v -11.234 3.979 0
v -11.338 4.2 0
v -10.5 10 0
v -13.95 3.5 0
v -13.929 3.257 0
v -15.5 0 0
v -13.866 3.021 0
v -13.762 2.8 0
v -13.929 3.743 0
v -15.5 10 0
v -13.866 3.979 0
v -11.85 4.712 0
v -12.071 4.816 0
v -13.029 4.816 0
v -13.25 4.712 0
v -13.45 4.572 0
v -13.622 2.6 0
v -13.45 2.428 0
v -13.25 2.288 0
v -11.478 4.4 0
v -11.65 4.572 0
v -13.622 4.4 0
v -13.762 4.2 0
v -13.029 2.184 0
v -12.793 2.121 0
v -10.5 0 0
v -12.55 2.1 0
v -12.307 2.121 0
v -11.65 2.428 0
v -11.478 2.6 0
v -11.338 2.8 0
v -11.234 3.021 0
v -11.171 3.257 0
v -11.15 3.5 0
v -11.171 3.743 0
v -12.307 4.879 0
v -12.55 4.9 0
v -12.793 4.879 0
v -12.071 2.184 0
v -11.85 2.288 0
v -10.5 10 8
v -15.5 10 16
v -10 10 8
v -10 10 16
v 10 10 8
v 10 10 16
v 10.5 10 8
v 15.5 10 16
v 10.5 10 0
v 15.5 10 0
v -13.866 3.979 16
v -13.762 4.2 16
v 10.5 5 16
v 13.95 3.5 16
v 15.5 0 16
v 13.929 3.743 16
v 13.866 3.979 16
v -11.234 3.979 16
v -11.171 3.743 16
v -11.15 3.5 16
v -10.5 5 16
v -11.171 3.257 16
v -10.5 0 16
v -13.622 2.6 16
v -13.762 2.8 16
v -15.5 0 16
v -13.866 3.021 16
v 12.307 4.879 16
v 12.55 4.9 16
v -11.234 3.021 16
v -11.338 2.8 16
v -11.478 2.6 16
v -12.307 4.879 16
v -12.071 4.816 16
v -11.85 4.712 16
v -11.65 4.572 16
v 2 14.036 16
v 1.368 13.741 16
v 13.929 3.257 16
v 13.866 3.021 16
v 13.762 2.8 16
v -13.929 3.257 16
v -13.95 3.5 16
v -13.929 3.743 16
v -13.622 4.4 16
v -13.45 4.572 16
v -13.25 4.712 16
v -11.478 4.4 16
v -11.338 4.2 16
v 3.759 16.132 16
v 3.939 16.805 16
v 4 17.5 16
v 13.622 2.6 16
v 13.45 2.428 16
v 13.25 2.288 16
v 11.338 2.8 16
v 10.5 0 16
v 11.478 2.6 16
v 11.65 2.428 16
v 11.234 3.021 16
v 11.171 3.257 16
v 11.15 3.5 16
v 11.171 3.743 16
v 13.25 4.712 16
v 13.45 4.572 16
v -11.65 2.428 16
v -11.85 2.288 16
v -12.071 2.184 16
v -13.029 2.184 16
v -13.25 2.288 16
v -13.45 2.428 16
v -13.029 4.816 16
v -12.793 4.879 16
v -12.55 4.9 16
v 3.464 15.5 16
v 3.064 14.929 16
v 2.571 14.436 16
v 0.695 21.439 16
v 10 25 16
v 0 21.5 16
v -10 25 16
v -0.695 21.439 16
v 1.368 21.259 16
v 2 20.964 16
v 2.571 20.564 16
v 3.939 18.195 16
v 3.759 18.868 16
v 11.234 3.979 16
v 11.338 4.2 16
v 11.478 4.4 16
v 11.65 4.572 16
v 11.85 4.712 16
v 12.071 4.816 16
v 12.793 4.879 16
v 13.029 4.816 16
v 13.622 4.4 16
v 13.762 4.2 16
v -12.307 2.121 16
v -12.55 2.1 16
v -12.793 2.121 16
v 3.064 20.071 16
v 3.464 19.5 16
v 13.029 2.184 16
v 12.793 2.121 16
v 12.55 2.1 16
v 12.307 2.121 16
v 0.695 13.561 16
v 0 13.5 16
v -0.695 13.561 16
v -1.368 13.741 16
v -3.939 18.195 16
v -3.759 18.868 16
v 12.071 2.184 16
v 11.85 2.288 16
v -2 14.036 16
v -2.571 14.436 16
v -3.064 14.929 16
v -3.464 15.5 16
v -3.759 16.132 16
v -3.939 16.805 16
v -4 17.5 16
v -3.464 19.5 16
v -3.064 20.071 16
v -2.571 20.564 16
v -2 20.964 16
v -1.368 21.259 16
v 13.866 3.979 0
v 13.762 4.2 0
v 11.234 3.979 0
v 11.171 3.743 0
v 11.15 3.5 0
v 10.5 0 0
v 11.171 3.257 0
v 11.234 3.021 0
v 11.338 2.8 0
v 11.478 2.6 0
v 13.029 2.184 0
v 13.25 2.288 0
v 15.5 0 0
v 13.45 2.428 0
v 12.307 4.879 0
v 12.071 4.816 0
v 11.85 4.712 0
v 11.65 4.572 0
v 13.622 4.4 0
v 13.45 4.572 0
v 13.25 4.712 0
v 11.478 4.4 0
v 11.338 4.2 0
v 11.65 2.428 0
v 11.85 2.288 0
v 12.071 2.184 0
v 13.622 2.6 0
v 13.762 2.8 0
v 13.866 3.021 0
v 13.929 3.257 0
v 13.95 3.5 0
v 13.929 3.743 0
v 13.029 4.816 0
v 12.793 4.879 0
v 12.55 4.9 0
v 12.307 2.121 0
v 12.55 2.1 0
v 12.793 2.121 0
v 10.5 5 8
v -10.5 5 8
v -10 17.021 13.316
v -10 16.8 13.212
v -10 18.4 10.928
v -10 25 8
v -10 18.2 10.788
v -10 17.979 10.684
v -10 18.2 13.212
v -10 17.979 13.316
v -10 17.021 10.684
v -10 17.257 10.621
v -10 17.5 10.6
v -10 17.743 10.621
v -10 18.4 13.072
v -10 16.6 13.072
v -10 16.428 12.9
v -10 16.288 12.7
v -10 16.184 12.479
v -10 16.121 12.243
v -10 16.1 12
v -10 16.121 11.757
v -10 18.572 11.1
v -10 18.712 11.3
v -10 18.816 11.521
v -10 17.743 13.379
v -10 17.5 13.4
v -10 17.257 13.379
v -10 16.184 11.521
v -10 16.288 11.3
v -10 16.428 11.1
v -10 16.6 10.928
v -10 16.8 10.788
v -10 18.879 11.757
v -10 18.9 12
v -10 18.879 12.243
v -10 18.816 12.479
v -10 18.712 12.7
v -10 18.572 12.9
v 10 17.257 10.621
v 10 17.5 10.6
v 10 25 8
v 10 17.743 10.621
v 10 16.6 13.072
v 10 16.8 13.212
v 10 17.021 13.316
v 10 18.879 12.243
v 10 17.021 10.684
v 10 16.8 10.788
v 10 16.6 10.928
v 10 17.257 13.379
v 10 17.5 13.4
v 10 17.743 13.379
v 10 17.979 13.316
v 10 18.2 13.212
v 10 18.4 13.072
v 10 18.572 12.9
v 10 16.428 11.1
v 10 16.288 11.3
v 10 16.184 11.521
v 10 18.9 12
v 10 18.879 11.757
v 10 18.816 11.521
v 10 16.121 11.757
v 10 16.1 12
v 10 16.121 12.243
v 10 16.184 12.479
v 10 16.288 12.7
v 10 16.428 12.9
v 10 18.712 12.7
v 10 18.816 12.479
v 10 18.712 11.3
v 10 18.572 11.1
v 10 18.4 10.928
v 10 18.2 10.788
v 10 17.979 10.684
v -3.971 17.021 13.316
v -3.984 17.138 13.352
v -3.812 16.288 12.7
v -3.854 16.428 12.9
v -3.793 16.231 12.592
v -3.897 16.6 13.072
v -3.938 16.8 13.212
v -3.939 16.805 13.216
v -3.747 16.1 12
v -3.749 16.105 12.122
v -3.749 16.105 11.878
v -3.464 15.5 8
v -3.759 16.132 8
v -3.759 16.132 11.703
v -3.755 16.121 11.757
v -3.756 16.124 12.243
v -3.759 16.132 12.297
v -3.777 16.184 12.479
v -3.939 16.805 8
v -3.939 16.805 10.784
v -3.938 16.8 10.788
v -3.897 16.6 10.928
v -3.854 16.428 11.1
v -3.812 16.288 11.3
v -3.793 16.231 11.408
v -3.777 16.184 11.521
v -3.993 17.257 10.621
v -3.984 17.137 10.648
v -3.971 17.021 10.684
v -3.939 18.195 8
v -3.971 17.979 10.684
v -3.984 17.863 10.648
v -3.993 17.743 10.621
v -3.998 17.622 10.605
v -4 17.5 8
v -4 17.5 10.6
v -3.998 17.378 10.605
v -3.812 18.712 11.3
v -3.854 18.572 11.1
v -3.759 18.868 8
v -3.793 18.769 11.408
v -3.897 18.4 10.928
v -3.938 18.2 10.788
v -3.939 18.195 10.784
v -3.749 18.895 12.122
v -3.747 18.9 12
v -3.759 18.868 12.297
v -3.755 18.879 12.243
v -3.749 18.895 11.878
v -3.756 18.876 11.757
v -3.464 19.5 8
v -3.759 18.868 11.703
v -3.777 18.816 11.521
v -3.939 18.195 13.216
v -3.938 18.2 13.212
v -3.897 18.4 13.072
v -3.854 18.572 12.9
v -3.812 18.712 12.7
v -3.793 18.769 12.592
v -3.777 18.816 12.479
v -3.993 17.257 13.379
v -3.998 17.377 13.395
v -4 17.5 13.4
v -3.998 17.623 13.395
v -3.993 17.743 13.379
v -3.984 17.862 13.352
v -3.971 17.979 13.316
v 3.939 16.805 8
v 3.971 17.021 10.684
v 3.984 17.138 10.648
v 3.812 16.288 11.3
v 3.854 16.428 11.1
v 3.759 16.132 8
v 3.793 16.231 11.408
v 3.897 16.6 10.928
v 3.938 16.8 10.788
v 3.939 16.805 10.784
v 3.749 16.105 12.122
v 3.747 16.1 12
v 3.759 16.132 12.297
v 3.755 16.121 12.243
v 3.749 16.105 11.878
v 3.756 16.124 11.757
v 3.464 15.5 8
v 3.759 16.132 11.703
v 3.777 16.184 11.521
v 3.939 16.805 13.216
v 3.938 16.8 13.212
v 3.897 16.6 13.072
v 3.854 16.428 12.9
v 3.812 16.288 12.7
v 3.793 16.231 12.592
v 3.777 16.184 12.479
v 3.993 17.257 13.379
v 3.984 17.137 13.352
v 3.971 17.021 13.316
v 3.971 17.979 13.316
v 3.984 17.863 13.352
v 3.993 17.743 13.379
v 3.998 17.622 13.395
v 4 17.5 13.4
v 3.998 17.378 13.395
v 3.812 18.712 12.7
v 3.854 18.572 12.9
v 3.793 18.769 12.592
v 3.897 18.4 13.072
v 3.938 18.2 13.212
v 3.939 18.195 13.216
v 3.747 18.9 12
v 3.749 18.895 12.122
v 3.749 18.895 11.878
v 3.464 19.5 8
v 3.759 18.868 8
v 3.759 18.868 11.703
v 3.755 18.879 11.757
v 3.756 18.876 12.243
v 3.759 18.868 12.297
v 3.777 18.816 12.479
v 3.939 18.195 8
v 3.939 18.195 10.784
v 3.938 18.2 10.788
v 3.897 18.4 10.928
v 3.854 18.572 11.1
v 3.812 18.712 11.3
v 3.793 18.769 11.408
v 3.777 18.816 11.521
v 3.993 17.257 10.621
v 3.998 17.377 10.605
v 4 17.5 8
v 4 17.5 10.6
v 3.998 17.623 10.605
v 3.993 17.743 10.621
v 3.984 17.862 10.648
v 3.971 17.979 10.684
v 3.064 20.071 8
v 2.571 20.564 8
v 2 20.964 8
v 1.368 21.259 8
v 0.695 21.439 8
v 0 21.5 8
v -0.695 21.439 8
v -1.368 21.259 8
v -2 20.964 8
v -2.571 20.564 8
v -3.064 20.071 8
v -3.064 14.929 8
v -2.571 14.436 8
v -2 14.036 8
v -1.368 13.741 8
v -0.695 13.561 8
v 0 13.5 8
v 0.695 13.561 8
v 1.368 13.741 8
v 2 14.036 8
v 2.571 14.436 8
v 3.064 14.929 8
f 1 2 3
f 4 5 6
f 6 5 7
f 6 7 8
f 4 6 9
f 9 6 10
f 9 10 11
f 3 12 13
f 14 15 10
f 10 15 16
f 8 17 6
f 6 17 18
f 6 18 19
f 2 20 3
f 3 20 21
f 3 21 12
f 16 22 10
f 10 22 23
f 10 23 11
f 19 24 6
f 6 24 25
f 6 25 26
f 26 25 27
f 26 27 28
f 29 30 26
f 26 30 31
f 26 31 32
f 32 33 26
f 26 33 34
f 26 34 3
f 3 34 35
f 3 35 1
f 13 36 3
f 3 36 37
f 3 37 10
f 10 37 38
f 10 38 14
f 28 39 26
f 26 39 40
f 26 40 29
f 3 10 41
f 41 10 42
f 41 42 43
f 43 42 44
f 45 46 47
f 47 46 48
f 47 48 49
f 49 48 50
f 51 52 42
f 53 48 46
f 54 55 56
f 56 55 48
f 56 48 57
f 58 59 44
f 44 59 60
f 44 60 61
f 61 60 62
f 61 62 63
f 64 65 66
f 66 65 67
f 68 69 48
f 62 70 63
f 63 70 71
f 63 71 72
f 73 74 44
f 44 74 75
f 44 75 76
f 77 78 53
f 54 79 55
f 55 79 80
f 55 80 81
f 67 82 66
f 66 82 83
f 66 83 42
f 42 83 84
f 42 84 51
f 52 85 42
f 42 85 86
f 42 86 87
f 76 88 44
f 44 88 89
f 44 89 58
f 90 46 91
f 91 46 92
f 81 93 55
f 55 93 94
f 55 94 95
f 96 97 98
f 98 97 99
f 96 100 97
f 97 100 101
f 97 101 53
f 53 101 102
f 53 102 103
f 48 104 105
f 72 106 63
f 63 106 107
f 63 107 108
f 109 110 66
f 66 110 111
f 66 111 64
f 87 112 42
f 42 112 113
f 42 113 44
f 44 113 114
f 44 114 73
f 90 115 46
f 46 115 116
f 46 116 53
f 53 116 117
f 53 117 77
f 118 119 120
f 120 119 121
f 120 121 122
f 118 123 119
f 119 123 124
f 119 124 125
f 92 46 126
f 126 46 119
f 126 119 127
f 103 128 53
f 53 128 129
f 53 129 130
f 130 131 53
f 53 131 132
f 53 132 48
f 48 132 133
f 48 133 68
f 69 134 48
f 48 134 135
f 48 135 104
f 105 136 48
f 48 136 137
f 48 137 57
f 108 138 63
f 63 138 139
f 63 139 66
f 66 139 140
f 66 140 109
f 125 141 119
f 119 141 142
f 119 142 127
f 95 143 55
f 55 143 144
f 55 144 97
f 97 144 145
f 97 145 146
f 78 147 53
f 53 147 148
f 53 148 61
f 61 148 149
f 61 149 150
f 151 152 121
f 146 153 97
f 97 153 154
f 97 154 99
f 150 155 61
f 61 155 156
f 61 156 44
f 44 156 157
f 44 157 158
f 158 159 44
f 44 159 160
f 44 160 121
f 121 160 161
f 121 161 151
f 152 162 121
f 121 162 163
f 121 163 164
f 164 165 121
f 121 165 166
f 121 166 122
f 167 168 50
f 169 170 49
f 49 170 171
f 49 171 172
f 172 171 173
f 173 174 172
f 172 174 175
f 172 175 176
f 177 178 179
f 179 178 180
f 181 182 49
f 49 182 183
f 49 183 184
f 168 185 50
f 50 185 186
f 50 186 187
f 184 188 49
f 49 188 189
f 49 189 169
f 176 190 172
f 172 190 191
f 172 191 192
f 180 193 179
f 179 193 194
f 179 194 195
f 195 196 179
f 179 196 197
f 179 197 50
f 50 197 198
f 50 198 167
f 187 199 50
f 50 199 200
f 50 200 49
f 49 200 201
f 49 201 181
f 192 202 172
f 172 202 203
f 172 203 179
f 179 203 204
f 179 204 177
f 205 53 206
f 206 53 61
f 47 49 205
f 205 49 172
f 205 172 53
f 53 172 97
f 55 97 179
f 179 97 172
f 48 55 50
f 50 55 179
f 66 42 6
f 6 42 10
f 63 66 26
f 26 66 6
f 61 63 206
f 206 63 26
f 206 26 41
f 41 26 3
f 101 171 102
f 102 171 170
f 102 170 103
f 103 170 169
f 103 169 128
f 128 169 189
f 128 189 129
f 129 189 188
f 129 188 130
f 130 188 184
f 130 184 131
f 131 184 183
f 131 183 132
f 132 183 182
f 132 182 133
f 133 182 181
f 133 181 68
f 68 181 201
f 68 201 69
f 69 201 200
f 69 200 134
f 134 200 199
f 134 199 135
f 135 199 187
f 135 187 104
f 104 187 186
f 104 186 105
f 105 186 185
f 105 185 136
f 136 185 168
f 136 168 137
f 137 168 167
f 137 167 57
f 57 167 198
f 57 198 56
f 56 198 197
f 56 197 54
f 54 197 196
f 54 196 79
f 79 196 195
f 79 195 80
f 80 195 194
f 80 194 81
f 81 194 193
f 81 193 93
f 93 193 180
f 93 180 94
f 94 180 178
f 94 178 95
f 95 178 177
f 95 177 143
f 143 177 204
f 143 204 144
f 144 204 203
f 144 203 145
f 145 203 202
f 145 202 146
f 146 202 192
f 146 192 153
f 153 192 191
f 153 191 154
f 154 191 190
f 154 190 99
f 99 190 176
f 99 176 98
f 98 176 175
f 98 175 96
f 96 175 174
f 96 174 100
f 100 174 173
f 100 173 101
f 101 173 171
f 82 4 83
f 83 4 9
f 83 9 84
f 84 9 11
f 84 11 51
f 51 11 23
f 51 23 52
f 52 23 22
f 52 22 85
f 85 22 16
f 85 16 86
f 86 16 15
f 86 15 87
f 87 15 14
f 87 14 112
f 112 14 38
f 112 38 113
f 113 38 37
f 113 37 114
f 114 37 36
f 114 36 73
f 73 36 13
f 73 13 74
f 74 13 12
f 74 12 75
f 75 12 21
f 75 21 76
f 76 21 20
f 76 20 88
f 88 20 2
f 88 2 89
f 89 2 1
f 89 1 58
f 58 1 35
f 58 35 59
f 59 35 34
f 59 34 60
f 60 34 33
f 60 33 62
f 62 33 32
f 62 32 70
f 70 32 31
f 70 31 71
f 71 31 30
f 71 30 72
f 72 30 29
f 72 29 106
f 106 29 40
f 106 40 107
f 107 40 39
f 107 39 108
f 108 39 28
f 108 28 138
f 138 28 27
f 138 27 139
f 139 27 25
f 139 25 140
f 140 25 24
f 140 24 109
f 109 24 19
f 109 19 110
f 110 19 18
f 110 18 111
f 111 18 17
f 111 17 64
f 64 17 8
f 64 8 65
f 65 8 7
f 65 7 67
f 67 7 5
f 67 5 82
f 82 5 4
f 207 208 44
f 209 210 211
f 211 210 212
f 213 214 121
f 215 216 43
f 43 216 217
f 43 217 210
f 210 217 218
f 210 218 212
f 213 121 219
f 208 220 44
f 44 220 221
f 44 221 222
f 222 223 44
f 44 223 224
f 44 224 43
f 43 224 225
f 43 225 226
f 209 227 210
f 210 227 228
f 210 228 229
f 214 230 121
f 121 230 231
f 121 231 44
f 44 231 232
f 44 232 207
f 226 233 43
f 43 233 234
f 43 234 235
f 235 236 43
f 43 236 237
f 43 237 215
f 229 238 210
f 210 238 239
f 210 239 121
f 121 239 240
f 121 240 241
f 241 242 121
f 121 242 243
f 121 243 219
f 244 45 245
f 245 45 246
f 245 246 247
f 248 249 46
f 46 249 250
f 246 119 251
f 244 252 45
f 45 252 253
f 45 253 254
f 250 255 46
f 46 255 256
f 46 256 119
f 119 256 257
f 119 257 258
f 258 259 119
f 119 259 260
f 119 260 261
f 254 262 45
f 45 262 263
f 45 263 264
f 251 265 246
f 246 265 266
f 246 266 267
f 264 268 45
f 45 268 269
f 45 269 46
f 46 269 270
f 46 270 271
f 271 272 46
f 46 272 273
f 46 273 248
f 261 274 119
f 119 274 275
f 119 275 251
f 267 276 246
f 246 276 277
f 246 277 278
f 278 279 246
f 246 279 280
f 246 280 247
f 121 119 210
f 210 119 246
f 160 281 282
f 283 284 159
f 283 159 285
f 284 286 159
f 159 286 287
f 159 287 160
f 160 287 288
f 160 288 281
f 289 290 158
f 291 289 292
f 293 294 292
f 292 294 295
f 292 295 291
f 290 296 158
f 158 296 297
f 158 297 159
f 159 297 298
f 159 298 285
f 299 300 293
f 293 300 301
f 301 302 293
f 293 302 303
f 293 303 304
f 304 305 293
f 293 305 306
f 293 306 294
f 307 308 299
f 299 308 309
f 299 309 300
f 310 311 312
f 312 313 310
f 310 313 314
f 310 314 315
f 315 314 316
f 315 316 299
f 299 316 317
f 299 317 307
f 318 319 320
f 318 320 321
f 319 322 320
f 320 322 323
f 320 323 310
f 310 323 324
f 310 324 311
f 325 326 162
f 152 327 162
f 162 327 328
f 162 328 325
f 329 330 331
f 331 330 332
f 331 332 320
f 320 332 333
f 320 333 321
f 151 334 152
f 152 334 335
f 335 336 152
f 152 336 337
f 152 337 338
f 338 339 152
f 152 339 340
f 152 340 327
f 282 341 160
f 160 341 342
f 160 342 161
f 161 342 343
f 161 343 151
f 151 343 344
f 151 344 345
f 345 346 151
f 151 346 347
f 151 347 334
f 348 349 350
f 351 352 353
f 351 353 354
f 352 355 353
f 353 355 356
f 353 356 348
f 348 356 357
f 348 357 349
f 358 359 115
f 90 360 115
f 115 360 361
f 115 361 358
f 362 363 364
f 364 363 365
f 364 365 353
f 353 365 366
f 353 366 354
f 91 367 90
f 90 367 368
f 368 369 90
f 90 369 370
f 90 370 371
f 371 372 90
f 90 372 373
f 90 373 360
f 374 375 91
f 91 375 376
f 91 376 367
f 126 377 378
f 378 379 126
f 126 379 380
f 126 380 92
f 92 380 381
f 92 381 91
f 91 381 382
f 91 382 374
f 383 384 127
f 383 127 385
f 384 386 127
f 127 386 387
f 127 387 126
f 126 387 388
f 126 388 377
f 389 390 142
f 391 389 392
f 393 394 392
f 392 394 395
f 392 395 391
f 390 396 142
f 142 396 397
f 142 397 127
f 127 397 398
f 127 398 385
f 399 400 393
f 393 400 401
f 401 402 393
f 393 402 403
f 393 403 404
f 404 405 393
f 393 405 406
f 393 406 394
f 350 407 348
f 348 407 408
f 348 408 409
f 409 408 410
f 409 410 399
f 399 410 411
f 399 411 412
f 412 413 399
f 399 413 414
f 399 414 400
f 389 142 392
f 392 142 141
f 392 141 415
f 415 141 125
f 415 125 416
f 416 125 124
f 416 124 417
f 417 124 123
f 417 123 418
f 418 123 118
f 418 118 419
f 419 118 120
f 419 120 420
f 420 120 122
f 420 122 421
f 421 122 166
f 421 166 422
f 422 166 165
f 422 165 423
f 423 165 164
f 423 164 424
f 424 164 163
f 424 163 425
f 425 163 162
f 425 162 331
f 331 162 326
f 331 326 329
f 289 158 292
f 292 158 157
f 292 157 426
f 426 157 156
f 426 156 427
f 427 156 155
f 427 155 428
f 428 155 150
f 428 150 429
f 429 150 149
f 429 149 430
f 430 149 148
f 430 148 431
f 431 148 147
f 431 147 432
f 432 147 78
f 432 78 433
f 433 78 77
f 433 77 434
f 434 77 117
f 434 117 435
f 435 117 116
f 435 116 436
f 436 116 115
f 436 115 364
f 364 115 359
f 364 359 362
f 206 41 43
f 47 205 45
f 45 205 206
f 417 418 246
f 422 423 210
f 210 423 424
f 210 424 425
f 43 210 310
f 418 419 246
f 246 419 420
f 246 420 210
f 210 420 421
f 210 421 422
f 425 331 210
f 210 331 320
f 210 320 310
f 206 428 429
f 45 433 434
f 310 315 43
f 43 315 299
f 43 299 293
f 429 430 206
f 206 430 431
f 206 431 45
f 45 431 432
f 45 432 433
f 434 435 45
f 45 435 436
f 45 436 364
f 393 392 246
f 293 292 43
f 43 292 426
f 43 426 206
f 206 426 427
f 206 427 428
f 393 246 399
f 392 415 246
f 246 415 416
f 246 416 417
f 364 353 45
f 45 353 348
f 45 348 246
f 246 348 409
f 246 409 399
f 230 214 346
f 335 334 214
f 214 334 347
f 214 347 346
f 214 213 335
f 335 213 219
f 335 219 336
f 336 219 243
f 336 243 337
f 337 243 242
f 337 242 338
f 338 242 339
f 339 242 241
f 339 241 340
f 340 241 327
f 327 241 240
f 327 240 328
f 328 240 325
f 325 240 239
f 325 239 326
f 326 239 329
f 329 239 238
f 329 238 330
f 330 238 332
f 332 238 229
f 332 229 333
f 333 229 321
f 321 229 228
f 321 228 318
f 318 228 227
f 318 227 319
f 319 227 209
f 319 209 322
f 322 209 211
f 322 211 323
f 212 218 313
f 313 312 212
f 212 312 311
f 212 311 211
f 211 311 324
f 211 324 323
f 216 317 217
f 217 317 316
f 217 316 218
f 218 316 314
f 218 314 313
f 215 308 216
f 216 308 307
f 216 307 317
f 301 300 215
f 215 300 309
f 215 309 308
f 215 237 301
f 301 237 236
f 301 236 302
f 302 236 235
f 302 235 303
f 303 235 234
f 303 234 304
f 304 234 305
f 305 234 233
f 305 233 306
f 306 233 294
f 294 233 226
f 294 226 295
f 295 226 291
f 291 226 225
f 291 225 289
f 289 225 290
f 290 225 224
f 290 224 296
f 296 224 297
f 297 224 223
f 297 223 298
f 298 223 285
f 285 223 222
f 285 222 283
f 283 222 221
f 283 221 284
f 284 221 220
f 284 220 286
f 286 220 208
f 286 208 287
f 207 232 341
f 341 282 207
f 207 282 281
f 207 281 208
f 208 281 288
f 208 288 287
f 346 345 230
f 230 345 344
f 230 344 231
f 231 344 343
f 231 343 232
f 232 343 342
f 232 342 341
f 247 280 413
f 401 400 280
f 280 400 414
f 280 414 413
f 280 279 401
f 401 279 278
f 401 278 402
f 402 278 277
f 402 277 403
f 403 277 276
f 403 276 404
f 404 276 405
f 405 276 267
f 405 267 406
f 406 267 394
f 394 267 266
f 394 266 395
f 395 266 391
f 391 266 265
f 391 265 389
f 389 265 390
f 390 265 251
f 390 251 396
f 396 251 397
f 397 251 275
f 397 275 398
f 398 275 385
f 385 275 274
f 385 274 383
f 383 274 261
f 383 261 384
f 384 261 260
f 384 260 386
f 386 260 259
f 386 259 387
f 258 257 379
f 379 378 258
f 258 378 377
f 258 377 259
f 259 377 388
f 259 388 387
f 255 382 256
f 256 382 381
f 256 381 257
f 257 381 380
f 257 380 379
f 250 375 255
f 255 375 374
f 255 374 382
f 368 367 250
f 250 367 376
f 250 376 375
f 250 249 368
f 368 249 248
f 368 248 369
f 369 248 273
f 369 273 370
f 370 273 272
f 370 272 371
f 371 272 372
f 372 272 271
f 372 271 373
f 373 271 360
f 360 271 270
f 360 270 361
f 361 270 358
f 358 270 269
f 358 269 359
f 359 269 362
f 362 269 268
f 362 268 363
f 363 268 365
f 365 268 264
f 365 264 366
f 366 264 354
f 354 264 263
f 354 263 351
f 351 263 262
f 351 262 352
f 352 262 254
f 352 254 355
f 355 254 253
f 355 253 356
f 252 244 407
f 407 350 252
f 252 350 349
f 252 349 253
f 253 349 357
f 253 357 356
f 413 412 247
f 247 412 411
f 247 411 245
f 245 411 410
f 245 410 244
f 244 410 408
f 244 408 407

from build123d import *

# Parameters (mm, degrees)
ESQUISSE1_R             = 1.4
BOSS_EXTRU_1_DEPTH      = 16
ESQUISSE2_W             = 20
ESQUISSE2_H             = 16
BOSS_EXTRU_2_DEPTH      = 15
ESQUISSE3_R             = 4
ENL_V_MAT_EXTRU_1_DEPTH = 15
ESQUISSE4_W             = 21
ESQUISSE4_H             = 8
ENL_V_MAT_EXTRU_2_DEPTH = 21
ESQUISSE5_R             = 1.4
ENL_V_MAT_EXTRU_3_DEPTH = 21


with BuildPart() as part:
    # Esquisse1 → Boss.-Extru.1 (new body)
    with BuildSketch(Plane.XY):
        Polygon((15.5, 10), (-15.5, 10), (-15.5, 0), (-10.5, 0), (-10.5, 5), (10.5, 5), (10.5, 0), (15.5, 0), align=None)
        with Locations((12.55, 3.5)):
            Circle(ESQUISSE1_R, mode=Mode.SUBTRACT)
        with Locations((-12.55, 3.5)):
            Circle(ESQUISSE1_R, mode=Mode.SUBTRACT)
    extrude(amount=BOSS_EXTRU_1_DEPTH)

    # Esquisse2 → Boss.-Extru.2 (add)
    with BuildSketch(Plane(origin=(0, 10, 0), x_dir=(1, 0, 0), z_dir=(0, 1, 0))):
        with Locations((0, -8)):
            Rectangle(ESQUISSE2_W, ESQUISSE2_H)
    extrude(amount=BOSS_EXTRU_2_DEPTH)

    # Esquisse3 → Enlèv. mat.-Extru.1 (cut)
    with BuildSketch(Plane.XY.offset(16)):
        with Locations((0, 17.5)):
            Circle(ESQUISSE3_R)
    extrude(amount=-ENL_V_MAT_EXTRU_1_DEPTH, mode=Mode.SUBTRACT)

    # Esquisse4 → Enlèv. mat.-Extru.2 (cut)
    with BuildSketch(Plane.XZ.offset(-5)):
        with Locations((0, 4)):
            Rectangle(ESQUISSE4_W, ESQUISSE4_H)
    extrude(amount=-ENL_V_MAT_EXTRU_2_DEPTH, mode=Mode.SUBTRACT)

    # Esquisse5 → Enlèv. mat.-Extru.3 (cut)
    with BuildSketch(Plane.ZY.offset(10)):
        with Locations((12, 17.5)):
            Circle(ESQUISSE5_R)
    extrude(amount=-ENL_V_MAT_EXTRU_3_DEPTH, mode=Mode.SUBTRACT)


solid = part.part
